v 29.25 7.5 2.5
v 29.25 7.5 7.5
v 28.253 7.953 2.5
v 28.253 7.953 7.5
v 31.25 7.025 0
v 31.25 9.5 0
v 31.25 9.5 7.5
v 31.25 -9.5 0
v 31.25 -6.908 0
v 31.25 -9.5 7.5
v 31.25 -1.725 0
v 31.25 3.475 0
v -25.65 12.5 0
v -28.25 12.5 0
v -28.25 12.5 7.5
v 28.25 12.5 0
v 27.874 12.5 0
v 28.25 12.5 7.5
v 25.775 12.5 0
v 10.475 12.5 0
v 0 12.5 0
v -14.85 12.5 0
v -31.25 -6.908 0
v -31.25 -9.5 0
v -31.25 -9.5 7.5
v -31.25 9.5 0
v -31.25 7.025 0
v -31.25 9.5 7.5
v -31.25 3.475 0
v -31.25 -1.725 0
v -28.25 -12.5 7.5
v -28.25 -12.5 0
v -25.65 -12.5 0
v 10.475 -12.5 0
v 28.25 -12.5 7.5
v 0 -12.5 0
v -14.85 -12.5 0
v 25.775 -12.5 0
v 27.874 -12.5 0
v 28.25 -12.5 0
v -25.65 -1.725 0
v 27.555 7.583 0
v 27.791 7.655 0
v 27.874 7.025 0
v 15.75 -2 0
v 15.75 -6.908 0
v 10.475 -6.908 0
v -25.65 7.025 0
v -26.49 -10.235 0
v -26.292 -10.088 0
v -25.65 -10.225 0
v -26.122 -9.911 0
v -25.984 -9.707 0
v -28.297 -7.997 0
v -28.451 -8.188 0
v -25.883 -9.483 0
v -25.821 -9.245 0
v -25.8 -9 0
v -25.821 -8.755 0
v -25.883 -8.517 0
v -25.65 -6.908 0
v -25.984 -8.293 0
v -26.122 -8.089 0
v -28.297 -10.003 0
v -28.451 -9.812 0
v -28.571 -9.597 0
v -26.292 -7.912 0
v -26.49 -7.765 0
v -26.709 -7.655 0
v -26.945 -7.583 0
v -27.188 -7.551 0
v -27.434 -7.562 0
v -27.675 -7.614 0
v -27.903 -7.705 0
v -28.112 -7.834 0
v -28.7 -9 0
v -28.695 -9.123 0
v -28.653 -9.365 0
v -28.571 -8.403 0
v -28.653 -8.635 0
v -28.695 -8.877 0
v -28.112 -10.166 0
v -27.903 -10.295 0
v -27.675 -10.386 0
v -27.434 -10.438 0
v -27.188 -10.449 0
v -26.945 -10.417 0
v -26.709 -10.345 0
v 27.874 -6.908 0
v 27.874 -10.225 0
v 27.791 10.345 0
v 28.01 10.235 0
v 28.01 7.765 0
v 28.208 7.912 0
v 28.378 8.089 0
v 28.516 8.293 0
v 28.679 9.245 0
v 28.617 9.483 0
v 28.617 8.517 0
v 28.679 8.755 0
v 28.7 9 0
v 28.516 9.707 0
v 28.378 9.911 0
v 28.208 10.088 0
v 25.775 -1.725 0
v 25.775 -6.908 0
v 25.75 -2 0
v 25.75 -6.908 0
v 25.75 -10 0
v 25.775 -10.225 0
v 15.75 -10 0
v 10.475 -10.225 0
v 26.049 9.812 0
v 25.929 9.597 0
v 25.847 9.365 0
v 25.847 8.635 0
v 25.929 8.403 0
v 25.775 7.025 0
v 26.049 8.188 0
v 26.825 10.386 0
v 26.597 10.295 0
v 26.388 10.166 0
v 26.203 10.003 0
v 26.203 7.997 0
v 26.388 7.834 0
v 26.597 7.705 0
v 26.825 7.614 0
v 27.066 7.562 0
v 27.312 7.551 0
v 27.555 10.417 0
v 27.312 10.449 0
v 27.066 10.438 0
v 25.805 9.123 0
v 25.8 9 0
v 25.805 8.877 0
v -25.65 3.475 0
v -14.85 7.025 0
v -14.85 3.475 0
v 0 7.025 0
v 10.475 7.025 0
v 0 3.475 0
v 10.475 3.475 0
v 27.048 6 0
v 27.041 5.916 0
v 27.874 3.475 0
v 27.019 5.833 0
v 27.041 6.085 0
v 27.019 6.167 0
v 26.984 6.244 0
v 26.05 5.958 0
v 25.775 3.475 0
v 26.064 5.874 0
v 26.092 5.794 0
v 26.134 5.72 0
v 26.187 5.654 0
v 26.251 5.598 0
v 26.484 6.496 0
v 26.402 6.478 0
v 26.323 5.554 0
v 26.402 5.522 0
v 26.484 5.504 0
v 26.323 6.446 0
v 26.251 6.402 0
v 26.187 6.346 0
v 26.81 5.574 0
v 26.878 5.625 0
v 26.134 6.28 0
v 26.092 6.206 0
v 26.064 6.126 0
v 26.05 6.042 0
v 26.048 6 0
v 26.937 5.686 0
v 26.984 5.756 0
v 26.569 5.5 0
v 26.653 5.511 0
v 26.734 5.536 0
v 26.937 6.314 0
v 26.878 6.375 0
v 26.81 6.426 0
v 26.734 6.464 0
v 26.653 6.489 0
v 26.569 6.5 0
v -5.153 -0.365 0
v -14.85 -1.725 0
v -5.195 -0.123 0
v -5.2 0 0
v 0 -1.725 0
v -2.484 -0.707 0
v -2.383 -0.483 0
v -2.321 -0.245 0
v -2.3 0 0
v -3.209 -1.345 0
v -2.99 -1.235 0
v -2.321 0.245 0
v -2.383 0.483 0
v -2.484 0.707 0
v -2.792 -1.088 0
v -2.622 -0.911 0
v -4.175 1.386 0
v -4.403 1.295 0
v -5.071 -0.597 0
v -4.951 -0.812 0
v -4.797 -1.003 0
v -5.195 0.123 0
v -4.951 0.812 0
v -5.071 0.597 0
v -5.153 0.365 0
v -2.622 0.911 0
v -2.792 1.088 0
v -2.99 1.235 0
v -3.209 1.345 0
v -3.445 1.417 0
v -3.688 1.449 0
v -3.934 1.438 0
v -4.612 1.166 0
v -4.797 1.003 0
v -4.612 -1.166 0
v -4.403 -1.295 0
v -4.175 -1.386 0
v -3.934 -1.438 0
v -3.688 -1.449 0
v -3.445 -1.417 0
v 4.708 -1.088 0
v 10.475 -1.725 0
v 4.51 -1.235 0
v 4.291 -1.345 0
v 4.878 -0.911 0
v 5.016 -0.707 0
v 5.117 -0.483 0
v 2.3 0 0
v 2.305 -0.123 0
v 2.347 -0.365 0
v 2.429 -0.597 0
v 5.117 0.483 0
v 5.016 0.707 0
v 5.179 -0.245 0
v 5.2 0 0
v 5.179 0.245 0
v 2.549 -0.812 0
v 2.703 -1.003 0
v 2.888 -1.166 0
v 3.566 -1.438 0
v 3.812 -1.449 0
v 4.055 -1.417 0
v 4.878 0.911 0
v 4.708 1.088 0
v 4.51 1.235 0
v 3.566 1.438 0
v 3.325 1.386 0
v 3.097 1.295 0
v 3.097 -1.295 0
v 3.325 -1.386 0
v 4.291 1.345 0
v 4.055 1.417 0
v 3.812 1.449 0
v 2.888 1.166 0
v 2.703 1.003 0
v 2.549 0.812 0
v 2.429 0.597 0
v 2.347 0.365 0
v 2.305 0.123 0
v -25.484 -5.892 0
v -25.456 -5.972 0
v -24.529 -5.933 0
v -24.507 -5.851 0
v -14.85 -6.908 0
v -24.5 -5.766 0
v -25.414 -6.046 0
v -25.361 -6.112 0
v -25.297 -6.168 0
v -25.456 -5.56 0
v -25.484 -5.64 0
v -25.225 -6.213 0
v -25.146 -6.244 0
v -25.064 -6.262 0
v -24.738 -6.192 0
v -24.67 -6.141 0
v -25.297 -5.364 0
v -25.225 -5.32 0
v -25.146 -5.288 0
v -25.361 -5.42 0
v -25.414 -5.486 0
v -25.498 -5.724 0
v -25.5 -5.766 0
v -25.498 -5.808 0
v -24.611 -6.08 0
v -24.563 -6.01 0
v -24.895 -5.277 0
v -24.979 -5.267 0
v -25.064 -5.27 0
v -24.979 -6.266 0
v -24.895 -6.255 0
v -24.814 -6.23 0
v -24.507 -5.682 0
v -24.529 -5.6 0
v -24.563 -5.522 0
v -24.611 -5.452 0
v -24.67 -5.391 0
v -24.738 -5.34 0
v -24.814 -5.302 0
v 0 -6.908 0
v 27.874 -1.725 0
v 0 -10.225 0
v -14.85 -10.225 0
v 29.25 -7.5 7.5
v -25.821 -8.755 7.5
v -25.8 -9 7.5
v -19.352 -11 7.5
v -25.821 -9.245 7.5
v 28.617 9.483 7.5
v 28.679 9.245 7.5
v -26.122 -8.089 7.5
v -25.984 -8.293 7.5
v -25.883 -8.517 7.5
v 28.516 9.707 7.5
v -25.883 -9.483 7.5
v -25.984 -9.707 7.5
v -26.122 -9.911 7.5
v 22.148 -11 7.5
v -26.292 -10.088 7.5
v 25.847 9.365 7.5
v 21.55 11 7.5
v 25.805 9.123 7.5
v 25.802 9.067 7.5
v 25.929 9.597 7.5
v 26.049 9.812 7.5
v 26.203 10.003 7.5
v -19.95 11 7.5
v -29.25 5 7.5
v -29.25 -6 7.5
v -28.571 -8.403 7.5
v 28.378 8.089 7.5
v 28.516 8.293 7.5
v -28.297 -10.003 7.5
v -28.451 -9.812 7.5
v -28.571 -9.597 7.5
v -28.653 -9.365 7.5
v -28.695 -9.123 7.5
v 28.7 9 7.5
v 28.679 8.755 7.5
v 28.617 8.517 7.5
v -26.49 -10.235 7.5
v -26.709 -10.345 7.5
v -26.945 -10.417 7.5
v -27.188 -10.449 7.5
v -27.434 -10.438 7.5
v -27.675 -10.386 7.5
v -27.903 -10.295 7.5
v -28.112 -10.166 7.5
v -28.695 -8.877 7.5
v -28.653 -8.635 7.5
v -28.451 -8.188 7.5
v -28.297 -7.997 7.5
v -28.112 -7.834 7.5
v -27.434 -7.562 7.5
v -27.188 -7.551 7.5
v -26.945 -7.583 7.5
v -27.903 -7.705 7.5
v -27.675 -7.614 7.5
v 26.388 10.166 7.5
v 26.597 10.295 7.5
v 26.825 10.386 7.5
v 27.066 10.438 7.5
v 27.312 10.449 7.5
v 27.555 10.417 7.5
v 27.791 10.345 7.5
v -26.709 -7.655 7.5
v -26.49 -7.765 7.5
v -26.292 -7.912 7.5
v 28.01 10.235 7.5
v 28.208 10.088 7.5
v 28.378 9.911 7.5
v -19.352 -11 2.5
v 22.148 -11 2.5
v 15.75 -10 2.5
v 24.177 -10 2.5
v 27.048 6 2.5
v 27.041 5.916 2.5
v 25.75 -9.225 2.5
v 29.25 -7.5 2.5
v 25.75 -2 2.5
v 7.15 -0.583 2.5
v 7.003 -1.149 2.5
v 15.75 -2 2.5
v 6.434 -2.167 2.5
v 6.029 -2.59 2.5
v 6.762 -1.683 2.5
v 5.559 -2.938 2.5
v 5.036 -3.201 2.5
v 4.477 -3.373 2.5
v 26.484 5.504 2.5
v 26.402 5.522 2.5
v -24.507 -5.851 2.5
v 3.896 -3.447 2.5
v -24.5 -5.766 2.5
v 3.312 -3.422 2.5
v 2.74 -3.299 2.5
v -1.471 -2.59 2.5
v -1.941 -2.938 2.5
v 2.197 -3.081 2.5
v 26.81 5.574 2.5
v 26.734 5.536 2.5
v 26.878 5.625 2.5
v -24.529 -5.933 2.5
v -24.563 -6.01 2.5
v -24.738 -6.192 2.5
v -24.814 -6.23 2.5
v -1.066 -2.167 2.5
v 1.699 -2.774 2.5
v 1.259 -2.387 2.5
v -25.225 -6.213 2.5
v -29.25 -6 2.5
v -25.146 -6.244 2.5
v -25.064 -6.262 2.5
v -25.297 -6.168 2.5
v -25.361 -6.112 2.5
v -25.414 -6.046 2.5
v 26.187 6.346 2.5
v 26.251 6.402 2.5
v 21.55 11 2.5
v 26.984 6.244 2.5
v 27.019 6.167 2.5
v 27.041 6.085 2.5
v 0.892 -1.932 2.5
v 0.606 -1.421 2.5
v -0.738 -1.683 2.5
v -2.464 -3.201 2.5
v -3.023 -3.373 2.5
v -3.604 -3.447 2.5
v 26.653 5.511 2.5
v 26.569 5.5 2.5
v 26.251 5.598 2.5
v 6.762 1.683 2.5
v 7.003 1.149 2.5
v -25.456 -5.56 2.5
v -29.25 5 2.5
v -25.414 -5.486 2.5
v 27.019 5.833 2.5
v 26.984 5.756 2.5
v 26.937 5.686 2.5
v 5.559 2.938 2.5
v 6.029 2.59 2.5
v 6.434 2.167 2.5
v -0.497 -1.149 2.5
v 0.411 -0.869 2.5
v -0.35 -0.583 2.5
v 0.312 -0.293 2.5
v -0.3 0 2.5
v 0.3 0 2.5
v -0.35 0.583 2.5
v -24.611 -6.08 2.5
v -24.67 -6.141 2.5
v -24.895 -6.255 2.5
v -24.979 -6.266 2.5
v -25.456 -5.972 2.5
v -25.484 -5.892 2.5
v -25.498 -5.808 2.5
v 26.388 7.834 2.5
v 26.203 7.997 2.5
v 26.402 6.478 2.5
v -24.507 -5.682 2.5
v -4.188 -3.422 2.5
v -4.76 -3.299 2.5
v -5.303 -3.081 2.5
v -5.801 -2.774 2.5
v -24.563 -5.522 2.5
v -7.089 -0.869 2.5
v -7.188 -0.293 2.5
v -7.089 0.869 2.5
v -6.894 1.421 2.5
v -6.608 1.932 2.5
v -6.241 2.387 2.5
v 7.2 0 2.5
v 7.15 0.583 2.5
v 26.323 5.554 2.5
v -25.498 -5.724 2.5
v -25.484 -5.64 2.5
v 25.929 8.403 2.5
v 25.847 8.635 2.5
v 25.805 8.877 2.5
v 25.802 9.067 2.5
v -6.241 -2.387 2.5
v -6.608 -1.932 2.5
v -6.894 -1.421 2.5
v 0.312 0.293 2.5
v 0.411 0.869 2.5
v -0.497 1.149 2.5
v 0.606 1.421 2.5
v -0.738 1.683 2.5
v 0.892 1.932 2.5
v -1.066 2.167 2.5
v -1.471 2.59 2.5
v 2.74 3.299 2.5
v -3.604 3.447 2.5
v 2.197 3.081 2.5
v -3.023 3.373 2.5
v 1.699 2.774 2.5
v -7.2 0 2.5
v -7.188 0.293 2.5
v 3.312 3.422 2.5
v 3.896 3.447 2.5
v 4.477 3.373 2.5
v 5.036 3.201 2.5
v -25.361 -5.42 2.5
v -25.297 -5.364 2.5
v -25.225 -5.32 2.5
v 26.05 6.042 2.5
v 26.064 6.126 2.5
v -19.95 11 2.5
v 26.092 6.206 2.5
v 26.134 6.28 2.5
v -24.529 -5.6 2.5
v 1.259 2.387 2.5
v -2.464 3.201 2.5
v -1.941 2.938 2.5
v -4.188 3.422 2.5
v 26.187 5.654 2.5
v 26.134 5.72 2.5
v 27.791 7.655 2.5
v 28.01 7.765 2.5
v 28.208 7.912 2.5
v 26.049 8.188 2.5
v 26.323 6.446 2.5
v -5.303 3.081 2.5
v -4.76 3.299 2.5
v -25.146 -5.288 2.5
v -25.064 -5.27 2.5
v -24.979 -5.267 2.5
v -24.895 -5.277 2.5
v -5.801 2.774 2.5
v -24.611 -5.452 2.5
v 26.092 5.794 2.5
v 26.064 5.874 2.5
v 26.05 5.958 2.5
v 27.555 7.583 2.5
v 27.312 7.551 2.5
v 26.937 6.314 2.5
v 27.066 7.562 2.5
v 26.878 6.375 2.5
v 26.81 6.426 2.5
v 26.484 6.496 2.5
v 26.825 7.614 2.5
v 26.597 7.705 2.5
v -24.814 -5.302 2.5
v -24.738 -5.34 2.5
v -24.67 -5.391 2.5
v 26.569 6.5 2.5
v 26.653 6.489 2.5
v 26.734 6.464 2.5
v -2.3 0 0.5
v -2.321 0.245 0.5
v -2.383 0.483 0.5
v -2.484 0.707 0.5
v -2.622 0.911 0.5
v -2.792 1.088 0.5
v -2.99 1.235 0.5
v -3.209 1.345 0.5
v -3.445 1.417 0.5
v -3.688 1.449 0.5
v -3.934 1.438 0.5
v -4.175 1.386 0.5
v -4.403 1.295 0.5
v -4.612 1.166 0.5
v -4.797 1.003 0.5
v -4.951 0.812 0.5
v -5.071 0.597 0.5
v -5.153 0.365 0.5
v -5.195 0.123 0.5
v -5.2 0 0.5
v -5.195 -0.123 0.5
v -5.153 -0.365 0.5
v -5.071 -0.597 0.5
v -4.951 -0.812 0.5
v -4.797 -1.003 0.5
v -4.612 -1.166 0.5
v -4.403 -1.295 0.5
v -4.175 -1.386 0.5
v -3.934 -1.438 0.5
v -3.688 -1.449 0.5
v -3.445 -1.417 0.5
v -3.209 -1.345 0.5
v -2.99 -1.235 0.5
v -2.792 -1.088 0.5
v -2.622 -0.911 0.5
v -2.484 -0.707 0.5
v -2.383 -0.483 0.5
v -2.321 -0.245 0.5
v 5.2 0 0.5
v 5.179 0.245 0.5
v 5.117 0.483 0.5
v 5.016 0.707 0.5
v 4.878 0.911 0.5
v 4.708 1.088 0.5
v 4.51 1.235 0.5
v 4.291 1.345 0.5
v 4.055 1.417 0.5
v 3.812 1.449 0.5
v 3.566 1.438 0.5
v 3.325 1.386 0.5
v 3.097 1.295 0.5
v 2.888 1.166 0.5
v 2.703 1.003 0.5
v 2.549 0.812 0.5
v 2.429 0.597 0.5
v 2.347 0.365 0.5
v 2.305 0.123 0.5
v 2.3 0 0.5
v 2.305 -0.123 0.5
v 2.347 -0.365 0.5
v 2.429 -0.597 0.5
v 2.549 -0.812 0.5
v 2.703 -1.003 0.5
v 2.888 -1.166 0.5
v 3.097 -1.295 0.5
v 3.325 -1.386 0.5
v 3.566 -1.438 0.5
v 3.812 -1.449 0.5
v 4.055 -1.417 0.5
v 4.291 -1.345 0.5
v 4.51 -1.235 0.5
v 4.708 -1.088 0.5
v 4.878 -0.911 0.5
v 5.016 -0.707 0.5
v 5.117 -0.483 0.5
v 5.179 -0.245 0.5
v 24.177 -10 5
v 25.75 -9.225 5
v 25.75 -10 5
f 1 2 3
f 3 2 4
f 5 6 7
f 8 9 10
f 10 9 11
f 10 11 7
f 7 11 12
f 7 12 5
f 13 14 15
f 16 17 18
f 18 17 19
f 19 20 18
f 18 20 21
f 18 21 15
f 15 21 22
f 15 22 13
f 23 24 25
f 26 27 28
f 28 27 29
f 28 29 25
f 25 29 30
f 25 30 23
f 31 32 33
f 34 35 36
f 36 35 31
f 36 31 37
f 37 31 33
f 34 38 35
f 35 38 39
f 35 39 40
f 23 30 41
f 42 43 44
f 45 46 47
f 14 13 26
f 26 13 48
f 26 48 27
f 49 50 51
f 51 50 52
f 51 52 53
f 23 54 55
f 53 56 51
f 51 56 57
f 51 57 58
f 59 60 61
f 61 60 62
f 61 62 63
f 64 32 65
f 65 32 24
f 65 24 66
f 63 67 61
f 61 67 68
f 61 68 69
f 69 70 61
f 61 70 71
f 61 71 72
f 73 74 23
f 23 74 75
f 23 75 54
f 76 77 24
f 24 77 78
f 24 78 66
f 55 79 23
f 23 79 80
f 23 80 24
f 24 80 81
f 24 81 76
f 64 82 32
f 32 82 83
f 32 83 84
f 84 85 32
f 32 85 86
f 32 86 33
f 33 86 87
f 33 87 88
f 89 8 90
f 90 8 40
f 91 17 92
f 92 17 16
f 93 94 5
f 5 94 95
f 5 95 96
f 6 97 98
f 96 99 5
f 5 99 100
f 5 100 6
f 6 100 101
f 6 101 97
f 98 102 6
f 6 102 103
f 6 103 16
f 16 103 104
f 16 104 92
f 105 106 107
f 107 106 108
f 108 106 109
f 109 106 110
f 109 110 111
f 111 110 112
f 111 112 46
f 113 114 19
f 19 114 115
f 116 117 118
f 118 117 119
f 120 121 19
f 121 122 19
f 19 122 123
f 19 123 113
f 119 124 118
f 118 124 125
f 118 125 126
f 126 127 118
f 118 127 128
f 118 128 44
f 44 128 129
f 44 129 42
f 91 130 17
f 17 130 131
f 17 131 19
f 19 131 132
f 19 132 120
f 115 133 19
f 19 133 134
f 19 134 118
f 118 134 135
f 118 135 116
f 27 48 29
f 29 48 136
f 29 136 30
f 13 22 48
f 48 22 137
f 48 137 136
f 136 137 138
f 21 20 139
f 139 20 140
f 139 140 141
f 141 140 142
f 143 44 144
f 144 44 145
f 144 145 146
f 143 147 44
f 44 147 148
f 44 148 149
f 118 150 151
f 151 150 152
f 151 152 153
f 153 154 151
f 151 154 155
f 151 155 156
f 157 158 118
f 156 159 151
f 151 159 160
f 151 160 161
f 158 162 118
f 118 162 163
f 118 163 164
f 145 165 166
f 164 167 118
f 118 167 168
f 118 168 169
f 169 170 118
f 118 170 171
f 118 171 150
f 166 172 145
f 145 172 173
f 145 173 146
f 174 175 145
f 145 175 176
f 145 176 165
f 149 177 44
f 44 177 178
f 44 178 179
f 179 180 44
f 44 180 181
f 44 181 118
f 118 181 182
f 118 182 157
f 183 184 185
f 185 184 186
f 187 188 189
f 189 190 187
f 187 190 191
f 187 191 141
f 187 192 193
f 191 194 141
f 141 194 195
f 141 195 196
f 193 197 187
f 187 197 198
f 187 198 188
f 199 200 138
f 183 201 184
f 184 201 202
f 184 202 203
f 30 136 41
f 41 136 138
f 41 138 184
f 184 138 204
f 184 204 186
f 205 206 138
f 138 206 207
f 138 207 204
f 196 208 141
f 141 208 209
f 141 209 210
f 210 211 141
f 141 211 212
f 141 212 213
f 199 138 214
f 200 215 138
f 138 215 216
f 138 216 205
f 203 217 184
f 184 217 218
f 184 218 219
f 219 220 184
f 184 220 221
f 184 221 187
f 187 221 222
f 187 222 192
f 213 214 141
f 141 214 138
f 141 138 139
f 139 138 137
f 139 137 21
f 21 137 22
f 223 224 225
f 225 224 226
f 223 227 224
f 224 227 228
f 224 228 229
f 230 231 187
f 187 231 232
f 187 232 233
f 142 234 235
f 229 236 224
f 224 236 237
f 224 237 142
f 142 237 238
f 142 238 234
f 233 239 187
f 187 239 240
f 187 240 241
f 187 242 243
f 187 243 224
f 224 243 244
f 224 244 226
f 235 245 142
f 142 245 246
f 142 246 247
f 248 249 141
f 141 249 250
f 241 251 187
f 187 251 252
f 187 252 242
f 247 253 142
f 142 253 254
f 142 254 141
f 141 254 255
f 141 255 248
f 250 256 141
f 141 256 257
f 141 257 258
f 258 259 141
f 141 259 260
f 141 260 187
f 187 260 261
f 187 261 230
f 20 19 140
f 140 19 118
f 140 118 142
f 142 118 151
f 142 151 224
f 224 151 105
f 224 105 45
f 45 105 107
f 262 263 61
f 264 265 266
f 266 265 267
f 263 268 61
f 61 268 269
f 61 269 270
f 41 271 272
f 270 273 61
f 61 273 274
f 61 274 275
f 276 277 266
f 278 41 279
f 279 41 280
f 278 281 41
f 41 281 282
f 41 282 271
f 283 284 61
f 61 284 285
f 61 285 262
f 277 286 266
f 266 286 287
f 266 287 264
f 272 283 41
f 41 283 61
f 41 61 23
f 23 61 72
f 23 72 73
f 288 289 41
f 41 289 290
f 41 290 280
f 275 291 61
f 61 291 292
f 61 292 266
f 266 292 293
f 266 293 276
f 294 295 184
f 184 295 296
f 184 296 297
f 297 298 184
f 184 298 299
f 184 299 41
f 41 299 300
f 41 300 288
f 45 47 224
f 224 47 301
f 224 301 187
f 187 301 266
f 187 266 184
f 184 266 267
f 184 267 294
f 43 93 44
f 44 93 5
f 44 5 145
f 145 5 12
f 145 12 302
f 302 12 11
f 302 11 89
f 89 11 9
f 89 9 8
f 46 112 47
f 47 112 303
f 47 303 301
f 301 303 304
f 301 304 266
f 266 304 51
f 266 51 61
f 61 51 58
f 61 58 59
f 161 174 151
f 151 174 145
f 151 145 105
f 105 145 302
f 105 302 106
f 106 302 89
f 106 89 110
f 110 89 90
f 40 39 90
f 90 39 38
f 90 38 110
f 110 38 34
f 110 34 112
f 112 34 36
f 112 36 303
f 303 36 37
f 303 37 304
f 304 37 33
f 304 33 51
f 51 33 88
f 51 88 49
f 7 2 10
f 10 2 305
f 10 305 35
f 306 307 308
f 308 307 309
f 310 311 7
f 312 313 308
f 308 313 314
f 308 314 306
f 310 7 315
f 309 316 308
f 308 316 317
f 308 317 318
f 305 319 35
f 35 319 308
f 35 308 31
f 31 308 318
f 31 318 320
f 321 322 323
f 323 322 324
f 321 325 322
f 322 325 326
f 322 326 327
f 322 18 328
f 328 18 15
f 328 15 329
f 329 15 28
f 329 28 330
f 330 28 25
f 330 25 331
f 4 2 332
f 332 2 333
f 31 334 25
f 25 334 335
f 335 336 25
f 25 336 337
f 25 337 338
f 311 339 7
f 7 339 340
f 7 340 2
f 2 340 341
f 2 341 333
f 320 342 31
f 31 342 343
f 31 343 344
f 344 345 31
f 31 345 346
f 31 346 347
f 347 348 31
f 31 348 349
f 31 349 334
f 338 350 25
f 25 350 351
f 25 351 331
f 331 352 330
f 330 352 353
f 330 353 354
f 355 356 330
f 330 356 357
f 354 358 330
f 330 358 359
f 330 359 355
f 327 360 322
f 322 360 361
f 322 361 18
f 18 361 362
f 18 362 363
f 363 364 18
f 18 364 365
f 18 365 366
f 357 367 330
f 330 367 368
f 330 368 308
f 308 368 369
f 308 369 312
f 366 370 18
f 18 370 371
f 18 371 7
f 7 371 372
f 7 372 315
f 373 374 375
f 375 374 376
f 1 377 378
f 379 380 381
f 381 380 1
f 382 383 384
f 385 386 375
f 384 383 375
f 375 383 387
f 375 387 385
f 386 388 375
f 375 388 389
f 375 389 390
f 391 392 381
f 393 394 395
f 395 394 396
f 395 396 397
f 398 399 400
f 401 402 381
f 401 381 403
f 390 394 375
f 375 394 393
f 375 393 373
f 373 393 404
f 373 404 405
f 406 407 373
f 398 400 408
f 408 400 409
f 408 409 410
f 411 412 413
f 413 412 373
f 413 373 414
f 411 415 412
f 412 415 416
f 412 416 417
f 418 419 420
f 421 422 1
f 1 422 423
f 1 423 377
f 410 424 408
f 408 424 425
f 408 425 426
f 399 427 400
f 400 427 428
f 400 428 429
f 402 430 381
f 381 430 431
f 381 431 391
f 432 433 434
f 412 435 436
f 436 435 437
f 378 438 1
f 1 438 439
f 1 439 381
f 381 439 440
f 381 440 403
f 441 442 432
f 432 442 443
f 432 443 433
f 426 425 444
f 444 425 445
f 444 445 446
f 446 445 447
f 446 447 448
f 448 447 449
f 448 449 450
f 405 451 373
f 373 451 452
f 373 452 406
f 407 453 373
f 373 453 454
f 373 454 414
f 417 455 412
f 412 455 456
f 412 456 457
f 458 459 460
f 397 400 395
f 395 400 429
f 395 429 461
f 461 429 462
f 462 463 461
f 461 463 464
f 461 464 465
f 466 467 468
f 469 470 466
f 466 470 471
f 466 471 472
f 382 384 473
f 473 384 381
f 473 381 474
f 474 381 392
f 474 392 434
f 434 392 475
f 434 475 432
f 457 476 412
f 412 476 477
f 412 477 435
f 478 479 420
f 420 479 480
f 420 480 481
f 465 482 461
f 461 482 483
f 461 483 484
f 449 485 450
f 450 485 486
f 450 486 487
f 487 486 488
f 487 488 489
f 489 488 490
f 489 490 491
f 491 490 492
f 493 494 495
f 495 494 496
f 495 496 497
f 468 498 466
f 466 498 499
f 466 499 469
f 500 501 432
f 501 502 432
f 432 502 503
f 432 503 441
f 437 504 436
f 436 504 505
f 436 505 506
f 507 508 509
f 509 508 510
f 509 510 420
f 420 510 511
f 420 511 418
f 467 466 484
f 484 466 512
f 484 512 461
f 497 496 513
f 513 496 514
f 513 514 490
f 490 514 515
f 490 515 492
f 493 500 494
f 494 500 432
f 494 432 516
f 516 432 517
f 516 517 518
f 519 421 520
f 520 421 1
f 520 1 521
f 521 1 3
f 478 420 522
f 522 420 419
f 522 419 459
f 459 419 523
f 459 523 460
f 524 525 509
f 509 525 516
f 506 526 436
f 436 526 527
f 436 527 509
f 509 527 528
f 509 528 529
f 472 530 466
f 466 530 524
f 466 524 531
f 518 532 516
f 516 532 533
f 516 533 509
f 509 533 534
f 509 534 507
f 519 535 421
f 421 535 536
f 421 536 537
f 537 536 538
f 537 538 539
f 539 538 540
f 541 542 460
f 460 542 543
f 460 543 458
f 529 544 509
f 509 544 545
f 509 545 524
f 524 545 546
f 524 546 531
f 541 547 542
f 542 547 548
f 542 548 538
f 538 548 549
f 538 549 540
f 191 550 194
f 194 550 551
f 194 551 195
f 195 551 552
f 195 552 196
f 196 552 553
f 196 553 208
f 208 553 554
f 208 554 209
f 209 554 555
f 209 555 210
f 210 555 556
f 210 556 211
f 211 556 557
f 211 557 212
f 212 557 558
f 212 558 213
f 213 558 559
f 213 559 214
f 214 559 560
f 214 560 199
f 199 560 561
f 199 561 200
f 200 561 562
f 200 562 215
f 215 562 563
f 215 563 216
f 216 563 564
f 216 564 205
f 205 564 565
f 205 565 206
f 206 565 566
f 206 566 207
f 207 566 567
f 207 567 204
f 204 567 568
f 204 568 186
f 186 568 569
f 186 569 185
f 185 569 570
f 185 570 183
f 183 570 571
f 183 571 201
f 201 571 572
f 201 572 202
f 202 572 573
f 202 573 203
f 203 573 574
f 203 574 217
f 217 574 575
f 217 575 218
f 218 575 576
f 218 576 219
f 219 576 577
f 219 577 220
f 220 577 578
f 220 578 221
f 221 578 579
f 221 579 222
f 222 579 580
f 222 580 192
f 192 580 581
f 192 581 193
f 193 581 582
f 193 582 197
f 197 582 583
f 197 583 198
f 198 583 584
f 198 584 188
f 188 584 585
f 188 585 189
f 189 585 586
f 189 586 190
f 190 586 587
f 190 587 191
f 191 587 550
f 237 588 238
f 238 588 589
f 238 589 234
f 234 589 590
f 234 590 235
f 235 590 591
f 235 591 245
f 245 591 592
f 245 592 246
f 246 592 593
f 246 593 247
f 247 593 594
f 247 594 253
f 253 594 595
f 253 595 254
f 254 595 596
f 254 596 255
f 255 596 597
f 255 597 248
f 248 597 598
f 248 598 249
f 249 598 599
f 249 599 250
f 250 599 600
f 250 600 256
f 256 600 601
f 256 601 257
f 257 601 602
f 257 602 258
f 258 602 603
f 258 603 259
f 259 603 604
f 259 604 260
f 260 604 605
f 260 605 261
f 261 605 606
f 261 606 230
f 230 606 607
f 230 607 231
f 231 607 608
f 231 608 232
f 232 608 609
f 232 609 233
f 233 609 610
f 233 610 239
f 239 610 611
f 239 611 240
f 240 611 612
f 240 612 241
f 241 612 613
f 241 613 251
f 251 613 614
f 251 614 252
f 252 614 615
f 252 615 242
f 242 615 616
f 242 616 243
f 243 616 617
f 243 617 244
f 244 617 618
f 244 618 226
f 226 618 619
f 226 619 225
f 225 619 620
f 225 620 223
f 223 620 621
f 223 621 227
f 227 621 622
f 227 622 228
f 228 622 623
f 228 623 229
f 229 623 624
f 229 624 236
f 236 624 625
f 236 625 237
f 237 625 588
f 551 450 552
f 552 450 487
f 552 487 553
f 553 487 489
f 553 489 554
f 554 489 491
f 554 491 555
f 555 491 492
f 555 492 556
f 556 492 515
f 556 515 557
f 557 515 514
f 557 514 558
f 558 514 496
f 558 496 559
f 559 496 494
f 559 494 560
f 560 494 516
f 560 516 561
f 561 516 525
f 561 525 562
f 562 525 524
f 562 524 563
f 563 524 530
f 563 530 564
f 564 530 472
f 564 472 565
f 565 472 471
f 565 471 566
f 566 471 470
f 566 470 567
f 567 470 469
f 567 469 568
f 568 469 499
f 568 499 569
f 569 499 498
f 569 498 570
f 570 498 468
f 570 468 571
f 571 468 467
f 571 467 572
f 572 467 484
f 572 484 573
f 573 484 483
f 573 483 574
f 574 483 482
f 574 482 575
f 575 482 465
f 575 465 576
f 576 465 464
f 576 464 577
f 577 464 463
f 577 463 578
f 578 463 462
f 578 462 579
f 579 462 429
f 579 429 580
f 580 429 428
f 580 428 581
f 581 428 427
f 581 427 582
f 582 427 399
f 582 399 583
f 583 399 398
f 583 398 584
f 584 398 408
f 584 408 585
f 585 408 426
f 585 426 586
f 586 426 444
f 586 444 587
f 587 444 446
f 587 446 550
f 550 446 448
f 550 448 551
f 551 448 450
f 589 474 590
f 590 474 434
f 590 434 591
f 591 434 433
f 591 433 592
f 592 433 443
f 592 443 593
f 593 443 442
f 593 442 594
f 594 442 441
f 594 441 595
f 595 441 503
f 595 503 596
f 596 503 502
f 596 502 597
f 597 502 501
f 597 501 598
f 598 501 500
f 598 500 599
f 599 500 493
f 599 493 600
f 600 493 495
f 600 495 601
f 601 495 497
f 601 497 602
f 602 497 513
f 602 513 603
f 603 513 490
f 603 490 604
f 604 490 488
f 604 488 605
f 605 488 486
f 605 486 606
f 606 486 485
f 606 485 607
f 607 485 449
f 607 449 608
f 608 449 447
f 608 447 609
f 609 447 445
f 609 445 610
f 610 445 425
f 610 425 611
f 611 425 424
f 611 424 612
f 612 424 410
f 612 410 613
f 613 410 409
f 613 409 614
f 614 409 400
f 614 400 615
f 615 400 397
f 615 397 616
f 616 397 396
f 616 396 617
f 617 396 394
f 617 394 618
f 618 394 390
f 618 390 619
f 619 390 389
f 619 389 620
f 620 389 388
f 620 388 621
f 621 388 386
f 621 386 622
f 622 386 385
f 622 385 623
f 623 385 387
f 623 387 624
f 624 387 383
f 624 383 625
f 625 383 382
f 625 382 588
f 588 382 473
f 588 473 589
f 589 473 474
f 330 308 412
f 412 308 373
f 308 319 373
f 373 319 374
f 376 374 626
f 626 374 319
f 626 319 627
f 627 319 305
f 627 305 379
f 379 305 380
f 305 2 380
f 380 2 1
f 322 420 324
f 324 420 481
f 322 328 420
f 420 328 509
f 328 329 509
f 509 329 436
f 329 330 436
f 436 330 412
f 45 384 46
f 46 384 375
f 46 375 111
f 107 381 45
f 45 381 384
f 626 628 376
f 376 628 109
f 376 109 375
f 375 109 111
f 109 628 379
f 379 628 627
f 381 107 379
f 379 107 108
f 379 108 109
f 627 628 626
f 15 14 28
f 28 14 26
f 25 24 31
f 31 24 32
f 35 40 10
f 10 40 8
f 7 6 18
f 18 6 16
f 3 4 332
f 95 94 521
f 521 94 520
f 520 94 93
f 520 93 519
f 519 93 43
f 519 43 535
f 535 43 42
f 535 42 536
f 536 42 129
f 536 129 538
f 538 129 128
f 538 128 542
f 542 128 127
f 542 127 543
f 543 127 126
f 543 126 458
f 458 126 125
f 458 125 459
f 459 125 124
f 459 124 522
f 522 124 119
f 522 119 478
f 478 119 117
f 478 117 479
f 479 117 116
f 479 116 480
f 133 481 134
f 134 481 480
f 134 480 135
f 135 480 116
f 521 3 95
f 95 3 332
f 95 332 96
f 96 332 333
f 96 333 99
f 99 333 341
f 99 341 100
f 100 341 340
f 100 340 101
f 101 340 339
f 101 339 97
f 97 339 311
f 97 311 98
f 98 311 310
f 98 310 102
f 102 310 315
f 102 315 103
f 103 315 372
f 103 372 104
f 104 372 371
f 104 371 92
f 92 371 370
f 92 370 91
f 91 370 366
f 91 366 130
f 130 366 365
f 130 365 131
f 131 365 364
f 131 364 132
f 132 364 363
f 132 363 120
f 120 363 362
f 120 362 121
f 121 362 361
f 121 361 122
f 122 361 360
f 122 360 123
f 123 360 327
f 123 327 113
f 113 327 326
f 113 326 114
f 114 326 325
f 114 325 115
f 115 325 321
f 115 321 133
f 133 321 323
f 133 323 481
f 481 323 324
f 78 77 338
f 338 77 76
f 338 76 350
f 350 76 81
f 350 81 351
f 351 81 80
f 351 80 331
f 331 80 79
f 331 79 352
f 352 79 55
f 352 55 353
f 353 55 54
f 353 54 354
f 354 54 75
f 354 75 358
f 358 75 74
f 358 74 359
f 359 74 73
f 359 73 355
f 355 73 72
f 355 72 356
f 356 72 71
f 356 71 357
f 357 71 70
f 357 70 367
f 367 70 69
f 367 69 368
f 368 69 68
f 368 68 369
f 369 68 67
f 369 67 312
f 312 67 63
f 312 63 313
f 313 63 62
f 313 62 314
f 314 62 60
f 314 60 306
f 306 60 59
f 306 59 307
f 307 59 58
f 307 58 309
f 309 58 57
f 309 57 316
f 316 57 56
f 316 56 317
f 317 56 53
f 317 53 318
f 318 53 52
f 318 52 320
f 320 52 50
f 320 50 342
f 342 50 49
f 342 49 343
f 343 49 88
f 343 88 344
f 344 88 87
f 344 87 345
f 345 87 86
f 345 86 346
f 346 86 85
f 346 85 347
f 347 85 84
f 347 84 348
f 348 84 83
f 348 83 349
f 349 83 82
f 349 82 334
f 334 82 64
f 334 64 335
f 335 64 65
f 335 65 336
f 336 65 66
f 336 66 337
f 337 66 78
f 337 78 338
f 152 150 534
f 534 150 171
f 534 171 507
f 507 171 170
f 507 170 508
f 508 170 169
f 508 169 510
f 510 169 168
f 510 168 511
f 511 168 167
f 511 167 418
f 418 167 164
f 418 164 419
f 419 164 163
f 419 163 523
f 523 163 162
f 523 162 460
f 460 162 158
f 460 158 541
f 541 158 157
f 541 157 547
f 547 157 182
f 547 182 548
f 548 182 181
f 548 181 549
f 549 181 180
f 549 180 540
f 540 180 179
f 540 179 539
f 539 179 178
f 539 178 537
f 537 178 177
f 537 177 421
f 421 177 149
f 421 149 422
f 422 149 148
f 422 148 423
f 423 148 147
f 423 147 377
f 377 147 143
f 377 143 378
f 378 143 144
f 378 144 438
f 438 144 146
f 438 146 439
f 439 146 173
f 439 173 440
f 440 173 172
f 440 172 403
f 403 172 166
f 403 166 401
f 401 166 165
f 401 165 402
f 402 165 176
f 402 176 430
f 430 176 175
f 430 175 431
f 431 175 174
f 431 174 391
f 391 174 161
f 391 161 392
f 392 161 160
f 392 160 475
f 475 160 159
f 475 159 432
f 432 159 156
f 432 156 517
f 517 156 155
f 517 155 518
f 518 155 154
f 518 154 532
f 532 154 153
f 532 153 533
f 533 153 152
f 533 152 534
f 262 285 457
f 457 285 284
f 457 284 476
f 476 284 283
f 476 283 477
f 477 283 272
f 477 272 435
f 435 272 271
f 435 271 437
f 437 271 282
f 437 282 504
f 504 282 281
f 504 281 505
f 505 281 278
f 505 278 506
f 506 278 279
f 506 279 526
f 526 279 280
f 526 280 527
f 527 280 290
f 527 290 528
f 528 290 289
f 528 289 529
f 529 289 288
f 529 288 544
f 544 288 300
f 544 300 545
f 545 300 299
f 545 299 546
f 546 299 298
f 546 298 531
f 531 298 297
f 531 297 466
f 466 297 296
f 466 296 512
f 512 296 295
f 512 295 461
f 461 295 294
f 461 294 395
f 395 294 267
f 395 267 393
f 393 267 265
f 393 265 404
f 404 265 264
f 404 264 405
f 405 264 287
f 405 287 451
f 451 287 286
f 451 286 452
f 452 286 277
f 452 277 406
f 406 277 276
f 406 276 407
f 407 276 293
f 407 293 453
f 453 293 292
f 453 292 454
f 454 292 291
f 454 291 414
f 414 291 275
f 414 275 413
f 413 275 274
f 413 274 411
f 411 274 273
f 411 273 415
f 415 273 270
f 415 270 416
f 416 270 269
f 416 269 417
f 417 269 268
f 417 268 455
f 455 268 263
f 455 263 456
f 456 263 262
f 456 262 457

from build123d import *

# Parameters (mm, degrees)
SKETCH_1_W          = 62.5
SKETCH_1_H          = 25
EXTRUDE_1_DEPTH     = 2.5
SKETCH_2_R          = 1.45
CUT_EXTRUDE_1_DEPTH = 3.5
CHAMFER_1_SIZE      = 2
SKETCH_3_W          = 62.5
SKETCH_3_H          = 25
EXTRUDE_2_DEPTH     = 5
SKETCH_4_W          = 10
SKETCH_4_H          = 8
CUT_EXTRUDE_2_DEPTH = 5
SKETCH_5_W          = 67.566121691
SKETCH_5_H          = 29.988395665
CUT_EXTRUDE_3_DEPTH = 10
SKETCH_7_R          = 1.45
CUT_EXTRUDE_4_DEPTH = 10
SKETCH_10_R         = 0.5
CUT_EXTRUDE_5_DEPTH = 10


with BuildPart() as part:
    # Эскиз1 → Бобышка-Вытянуть1 (new body)
    with BuildSketch(Plane.XY):
        Rectangle(SKETCH_1_W, SKETCH_1_H)
    extrude(amount=EXTRUDE_1_DEPTH)

    # Эскиз2 → Вырез-Вытянуть1 (cut)
    with BuildSketch(Plane.XY.offset(2.5)):
        with Locations((3.75, 0)):
            Circle(SKETCH_2_R)
        with Locations((-3.75, 0)):
            Circle(SKETCH_2_R)
    extrude(amount=-CUT_EXTRUDE_1_DEPTH, mode=Mode.SUBTRACT)

    # Фаска1
    chamfer_1_edges = [part.edges().sort_by_distance(p)[0] for p in [
        (2.3, 0, 2.5),
        (-5.2, 0, 2.5),
    ]]
    chamfer(chamfer_1_edges, length=CHAMFER_1_SIZE)

    # Эскиз3 → Бобышка-Вытянуть2 (add)
    with BuildSketch(Plane.XY.offset(2.5)):
        Rectangle(SKETCH_3_W, SKETCH_3_H)
        Polygon((-29.25, -6), (-29.25, 5), (-19.95, 11), (21.55, 11), (29.25, 7.5), (29.25, -7.5), (22.14795897, -11), (-19.35204103, -11), align=None, mode=Mode.SUBTRACT)
    extrude(amount=EXTRUDE_2_DEPTH)

    # Эскиз4 → Вырез-Вытянуть2 (cut)
    with BuildSketch(Plane(origin=(0, 0, 0), x_dir=(-1, 0, 0), z_dir=(0, 0, -1))):
        with Locations((-20.75, -6)):
            Rectangle(SKETCH_4_W, SKETCH_4_H)
    extrude(amount=-CUT_EXTRUDE_2_DEPTH, mode=Mode.SUBTRACT)

    # Эскиз5 → Вырез-Вытянуть3 (cut)
    with BuildSketch(Plane.XY.offset(7.5)):
        with Locations((0.466014855, 0.289583976)):
            Rectangle(SKETCH_5_W, SKETCH_5_H)
        Polygon((-28.25, 12.5), (-31.25, 9.5), (-31.25, -9.5), (-28.25, -12.5), (28.25, -12.5), (31.25, -9.5), (31.25, 9.5), (28.25, 12.5), align=None, mode=Mode.SUBTRACT)
    extrude(amount=-CUT_EXTRUDE_3_DEPTH, mode=Mode.SUBTRACT)

    # Эскиз7 → Вырез-Вытянуть4 (cut)
    with BuildSketch(Plane.XY.offset(7.5)):
        with Locations((-27.25, -9)):
            Circle(SKETCH_7_R)
        with Locations(Location((27.25, 9, 0), (0, 0, 313.779004768))):
            Circle(SKETCH_7_R)
    extrude(amount=-CUT_EXTRUDE_4_DEPTH, mode=Mode.SUBTRACT)

    # Эскиз10 → Вырез-Вытянуть5 (cut)
    with BuildSketch(Plane.XY.offset(2.5)):
        with Locations((-25, -5.766085635)):
            Circle(SKETCH_10_R)
        with Locations((26.547958971, 6)):
            Circle(SKETCH_10_R)
    extrude(amount=-CUT_EXTRUDE_5_DEPTH, mode=Mode.SUBTRACT)


solid = part.part
